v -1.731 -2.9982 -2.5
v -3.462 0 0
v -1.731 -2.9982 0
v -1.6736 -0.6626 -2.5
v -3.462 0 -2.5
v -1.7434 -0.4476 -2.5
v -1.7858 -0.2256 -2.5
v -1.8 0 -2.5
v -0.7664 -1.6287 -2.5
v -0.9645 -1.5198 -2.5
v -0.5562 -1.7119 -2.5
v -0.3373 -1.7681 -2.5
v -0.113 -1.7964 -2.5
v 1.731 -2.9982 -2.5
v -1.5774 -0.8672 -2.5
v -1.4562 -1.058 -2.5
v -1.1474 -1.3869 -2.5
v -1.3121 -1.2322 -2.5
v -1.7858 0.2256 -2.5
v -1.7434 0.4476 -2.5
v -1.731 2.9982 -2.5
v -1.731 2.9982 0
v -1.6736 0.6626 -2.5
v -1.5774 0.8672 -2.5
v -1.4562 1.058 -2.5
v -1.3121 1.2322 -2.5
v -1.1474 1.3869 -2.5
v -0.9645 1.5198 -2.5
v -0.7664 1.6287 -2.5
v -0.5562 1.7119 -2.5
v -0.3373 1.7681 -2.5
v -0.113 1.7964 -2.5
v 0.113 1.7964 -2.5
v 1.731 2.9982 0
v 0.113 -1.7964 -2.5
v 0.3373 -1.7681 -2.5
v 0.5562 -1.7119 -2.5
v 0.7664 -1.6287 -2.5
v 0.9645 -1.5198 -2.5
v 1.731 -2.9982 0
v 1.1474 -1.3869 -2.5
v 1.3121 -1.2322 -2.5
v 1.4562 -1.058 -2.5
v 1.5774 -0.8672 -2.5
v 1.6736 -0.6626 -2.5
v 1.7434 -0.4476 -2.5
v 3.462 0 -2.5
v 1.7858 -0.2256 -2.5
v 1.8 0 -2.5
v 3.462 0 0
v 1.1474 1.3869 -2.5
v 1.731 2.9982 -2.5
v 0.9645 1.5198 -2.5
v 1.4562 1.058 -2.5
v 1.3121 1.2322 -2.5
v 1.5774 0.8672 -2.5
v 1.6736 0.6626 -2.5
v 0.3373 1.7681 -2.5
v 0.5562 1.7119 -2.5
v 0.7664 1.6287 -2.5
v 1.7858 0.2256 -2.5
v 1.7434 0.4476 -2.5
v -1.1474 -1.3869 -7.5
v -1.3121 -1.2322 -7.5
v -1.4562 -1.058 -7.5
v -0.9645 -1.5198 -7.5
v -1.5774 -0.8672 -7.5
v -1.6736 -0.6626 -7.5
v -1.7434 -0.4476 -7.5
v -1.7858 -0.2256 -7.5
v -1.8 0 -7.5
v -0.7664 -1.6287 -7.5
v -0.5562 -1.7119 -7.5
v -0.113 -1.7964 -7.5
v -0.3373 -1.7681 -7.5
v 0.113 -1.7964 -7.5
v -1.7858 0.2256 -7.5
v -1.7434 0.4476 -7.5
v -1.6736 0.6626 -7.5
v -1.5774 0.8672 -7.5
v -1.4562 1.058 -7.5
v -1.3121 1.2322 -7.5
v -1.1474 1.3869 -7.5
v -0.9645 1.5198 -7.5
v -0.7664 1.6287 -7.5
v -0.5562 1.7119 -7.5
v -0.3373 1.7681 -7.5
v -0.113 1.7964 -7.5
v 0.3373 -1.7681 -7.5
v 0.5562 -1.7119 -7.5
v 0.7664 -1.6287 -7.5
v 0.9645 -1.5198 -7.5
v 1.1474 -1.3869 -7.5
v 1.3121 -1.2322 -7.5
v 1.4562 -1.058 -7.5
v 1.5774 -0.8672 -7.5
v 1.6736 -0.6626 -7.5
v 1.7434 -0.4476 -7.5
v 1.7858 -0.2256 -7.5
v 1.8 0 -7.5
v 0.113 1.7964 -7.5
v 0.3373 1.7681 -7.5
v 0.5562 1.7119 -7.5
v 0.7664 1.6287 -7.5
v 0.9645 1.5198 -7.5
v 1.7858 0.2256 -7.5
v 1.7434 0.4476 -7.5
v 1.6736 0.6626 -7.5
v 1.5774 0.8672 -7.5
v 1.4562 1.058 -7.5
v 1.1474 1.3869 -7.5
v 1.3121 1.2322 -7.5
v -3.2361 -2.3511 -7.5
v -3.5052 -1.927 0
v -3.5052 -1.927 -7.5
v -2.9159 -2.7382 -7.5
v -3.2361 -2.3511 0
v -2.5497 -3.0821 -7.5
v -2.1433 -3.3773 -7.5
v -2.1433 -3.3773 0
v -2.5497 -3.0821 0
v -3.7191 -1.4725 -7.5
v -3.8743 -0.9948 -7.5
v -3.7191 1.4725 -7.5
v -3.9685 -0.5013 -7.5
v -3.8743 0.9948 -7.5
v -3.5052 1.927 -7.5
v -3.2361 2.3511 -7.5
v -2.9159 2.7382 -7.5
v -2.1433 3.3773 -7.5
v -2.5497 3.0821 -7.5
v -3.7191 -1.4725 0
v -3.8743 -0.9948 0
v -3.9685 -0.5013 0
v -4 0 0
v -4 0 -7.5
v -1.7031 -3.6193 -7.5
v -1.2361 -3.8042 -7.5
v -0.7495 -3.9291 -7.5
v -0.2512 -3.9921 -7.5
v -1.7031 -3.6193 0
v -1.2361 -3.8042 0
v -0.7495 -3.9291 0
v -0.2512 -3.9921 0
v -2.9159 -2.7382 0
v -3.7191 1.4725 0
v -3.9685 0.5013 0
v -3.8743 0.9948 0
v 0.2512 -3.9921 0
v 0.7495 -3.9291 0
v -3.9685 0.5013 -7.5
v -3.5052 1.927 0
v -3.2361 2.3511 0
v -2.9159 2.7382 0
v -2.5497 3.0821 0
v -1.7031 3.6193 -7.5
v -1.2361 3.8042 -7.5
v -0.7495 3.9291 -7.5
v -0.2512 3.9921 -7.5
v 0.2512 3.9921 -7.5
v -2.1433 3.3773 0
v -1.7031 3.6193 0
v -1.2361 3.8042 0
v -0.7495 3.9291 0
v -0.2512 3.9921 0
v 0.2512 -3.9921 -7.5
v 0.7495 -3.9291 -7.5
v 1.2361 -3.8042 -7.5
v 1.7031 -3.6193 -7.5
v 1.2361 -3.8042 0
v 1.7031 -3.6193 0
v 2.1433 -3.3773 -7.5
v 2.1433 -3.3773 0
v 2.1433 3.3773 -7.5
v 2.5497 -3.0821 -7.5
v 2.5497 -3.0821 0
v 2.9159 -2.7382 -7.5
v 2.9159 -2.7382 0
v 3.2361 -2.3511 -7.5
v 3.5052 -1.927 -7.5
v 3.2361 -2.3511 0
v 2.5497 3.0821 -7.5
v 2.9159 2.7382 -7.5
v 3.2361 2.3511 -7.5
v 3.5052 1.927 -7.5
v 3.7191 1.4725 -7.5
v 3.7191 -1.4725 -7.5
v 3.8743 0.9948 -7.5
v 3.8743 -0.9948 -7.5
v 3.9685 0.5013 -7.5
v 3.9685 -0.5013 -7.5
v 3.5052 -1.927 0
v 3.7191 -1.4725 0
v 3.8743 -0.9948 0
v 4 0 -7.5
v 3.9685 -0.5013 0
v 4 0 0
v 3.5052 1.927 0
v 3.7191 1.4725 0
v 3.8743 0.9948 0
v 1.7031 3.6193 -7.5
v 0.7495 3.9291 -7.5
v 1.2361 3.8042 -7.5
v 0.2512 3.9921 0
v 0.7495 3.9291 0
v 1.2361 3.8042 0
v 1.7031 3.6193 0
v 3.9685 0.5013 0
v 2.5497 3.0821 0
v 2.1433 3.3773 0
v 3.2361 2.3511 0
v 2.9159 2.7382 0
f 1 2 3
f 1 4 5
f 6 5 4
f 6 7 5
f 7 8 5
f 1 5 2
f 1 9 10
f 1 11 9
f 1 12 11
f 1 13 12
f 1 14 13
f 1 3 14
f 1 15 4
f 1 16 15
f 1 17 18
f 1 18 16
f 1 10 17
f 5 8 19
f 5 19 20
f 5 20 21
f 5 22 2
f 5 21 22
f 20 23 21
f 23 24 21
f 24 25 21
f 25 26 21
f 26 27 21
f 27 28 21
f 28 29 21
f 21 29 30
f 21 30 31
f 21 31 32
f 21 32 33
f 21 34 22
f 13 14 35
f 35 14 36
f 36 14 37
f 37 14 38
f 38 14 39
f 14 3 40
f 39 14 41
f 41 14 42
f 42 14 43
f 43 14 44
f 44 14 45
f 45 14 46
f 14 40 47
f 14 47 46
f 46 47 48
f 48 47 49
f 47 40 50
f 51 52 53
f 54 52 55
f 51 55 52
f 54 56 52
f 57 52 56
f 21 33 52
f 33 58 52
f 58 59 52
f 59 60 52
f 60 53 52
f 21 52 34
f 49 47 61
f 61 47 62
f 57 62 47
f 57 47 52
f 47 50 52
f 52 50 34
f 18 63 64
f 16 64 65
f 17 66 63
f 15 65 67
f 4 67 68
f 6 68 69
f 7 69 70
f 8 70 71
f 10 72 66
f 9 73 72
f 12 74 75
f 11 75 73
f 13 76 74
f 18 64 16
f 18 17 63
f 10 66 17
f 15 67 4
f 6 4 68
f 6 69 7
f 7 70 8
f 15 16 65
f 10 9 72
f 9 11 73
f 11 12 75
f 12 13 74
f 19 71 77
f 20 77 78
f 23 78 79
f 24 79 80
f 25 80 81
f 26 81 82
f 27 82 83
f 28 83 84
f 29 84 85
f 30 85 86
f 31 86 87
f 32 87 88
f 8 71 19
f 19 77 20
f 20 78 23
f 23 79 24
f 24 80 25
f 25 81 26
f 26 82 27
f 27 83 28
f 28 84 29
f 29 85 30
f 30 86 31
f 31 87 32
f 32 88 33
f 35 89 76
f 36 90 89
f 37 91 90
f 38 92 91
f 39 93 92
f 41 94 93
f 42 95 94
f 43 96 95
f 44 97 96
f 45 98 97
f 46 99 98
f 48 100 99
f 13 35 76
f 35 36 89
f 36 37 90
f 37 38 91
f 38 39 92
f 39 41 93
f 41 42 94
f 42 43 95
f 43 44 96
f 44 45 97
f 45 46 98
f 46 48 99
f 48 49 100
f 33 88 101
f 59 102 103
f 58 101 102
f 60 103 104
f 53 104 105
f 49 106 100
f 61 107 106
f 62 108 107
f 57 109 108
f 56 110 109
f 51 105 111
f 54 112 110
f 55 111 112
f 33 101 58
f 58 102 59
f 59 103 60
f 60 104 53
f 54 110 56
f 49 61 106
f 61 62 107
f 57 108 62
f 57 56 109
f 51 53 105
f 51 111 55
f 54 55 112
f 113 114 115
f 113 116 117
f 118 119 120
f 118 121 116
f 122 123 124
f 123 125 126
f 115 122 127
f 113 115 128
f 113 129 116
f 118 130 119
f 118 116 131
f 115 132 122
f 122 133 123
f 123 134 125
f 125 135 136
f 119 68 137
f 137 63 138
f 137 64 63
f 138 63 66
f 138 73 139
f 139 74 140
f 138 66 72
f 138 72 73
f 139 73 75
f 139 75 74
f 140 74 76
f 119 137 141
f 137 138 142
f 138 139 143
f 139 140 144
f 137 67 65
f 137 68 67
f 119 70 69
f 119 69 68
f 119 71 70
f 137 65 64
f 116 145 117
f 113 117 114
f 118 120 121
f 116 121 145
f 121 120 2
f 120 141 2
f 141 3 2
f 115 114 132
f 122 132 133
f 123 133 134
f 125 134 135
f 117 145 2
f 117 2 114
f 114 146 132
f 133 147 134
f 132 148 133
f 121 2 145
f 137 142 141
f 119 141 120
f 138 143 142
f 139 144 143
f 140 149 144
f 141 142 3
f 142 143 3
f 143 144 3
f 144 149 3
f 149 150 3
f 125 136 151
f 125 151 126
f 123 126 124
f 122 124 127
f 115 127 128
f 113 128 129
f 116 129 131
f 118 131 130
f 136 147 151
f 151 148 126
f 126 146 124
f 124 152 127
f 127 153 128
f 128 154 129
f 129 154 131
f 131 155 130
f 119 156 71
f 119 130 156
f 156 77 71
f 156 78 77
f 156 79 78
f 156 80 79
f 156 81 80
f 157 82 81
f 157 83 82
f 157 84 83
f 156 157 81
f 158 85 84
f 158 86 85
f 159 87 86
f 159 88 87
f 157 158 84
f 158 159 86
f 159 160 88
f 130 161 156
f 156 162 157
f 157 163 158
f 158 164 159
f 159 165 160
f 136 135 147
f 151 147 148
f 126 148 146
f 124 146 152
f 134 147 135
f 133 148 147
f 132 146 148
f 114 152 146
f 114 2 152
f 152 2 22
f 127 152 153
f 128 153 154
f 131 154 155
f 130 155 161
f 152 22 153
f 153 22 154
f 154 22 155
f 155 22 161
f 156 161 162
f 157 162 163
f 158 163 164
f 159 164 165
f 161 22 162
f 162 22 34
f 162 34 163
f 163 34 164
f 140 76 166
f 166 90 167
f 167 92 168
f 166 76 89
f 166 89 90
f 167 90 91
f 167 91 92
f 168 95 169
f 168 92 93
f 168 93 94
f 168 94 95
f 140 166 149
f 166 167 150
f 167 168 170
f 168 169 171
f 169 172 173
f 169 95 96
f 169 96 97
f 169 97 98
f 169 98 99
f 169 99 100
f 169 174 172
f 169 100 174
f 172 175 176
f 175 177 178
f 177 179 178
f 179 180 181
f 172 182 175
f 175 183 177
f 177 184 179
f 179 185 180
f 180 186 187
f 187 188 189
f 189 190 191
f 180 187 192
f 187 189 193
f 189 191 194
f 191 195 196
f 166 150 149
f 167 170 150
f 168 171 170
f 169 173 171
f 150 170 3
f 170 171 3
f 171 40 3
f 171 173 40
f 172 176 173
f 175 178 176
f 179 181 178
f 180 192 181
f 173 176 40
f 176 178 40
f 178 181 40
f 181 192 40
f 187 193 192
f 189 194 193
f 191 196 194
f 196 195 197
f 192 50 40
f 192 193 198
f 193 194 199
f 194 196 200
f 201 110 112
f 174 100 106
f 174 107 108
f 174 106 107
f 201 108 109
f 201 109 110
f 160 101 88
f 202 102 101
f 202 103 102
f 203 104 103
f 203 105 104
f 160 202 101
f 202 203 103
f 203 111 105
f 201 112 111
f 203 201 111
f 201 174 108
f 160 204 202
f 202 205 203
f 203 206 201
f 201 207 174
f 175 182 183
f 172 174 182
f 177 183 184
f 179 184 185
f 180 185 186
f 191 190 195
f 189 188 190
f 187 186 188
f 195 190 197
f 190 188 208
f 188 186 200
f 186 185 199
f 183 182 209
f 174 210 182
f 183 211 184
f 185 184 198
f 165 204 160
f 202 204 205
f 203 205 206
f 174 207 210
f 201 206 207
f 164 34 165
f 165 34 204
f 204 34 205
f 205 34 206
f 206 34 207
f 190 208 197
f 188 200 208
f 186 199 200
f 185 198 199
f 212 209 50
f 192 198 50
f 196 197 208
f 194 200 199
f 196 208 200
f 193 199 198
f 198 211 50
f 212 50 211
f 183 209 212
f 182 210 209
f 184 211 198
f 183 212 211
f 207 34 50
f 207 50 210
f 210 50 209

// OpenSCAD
$fn = 50;

difference() {
	union() {
		translate(v = [0, 0, -7.5]) {
			cylinder(h = 7.5, r = 4.0);
		}
	}
	union() {
		translate(v = [0, 0, 0]) {
			rotate(a = [0, 0, 0]) {
				difference() {
					union() {
						translate(v = [0, 0, -2.5]) {
							linear_extrude(height = 2.5) {
								polygon(points = [[3.4619999999999997, 0.0], [1.7310000000000003, 2.9981799479017264], [-1.7309999999999992, 2.9981799479017264], [-3.4619999999999997, 4.2397272186481365e-16], [-1.7310000000000014, -2.998179947901726], [1.7309999999999977, -2.9981799479017277]]);
							}
						}
					}
					union();
				}
			}
		}
		#translate(v = [0, 0, -100.0]) {
			cylinder(h = 200, r = 1.8);
		}
	}
}
